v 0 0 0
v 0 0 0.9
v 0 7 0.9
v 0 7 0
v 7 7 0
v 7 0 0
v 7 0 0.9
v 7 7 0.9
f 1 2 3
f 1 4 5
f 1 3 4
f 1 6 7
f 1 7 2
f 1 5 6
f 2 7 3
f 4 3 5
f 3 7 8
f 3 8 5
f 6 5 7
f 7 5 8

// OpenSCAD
/* Warning, this is a very basic generator with a lot of approximation 
input data : [VQFN, SLB, 7x7x0.9mm, 48, , C, C04-21413C]
generated by com.zoubworld.electronics.cad.model3d.Basic
Date : Sun Feb 15 10:50:49 CET 2026
*/

//body
color("black")
translate([0,0,0])
cube([7.0,7.0,0.9], center=false);
